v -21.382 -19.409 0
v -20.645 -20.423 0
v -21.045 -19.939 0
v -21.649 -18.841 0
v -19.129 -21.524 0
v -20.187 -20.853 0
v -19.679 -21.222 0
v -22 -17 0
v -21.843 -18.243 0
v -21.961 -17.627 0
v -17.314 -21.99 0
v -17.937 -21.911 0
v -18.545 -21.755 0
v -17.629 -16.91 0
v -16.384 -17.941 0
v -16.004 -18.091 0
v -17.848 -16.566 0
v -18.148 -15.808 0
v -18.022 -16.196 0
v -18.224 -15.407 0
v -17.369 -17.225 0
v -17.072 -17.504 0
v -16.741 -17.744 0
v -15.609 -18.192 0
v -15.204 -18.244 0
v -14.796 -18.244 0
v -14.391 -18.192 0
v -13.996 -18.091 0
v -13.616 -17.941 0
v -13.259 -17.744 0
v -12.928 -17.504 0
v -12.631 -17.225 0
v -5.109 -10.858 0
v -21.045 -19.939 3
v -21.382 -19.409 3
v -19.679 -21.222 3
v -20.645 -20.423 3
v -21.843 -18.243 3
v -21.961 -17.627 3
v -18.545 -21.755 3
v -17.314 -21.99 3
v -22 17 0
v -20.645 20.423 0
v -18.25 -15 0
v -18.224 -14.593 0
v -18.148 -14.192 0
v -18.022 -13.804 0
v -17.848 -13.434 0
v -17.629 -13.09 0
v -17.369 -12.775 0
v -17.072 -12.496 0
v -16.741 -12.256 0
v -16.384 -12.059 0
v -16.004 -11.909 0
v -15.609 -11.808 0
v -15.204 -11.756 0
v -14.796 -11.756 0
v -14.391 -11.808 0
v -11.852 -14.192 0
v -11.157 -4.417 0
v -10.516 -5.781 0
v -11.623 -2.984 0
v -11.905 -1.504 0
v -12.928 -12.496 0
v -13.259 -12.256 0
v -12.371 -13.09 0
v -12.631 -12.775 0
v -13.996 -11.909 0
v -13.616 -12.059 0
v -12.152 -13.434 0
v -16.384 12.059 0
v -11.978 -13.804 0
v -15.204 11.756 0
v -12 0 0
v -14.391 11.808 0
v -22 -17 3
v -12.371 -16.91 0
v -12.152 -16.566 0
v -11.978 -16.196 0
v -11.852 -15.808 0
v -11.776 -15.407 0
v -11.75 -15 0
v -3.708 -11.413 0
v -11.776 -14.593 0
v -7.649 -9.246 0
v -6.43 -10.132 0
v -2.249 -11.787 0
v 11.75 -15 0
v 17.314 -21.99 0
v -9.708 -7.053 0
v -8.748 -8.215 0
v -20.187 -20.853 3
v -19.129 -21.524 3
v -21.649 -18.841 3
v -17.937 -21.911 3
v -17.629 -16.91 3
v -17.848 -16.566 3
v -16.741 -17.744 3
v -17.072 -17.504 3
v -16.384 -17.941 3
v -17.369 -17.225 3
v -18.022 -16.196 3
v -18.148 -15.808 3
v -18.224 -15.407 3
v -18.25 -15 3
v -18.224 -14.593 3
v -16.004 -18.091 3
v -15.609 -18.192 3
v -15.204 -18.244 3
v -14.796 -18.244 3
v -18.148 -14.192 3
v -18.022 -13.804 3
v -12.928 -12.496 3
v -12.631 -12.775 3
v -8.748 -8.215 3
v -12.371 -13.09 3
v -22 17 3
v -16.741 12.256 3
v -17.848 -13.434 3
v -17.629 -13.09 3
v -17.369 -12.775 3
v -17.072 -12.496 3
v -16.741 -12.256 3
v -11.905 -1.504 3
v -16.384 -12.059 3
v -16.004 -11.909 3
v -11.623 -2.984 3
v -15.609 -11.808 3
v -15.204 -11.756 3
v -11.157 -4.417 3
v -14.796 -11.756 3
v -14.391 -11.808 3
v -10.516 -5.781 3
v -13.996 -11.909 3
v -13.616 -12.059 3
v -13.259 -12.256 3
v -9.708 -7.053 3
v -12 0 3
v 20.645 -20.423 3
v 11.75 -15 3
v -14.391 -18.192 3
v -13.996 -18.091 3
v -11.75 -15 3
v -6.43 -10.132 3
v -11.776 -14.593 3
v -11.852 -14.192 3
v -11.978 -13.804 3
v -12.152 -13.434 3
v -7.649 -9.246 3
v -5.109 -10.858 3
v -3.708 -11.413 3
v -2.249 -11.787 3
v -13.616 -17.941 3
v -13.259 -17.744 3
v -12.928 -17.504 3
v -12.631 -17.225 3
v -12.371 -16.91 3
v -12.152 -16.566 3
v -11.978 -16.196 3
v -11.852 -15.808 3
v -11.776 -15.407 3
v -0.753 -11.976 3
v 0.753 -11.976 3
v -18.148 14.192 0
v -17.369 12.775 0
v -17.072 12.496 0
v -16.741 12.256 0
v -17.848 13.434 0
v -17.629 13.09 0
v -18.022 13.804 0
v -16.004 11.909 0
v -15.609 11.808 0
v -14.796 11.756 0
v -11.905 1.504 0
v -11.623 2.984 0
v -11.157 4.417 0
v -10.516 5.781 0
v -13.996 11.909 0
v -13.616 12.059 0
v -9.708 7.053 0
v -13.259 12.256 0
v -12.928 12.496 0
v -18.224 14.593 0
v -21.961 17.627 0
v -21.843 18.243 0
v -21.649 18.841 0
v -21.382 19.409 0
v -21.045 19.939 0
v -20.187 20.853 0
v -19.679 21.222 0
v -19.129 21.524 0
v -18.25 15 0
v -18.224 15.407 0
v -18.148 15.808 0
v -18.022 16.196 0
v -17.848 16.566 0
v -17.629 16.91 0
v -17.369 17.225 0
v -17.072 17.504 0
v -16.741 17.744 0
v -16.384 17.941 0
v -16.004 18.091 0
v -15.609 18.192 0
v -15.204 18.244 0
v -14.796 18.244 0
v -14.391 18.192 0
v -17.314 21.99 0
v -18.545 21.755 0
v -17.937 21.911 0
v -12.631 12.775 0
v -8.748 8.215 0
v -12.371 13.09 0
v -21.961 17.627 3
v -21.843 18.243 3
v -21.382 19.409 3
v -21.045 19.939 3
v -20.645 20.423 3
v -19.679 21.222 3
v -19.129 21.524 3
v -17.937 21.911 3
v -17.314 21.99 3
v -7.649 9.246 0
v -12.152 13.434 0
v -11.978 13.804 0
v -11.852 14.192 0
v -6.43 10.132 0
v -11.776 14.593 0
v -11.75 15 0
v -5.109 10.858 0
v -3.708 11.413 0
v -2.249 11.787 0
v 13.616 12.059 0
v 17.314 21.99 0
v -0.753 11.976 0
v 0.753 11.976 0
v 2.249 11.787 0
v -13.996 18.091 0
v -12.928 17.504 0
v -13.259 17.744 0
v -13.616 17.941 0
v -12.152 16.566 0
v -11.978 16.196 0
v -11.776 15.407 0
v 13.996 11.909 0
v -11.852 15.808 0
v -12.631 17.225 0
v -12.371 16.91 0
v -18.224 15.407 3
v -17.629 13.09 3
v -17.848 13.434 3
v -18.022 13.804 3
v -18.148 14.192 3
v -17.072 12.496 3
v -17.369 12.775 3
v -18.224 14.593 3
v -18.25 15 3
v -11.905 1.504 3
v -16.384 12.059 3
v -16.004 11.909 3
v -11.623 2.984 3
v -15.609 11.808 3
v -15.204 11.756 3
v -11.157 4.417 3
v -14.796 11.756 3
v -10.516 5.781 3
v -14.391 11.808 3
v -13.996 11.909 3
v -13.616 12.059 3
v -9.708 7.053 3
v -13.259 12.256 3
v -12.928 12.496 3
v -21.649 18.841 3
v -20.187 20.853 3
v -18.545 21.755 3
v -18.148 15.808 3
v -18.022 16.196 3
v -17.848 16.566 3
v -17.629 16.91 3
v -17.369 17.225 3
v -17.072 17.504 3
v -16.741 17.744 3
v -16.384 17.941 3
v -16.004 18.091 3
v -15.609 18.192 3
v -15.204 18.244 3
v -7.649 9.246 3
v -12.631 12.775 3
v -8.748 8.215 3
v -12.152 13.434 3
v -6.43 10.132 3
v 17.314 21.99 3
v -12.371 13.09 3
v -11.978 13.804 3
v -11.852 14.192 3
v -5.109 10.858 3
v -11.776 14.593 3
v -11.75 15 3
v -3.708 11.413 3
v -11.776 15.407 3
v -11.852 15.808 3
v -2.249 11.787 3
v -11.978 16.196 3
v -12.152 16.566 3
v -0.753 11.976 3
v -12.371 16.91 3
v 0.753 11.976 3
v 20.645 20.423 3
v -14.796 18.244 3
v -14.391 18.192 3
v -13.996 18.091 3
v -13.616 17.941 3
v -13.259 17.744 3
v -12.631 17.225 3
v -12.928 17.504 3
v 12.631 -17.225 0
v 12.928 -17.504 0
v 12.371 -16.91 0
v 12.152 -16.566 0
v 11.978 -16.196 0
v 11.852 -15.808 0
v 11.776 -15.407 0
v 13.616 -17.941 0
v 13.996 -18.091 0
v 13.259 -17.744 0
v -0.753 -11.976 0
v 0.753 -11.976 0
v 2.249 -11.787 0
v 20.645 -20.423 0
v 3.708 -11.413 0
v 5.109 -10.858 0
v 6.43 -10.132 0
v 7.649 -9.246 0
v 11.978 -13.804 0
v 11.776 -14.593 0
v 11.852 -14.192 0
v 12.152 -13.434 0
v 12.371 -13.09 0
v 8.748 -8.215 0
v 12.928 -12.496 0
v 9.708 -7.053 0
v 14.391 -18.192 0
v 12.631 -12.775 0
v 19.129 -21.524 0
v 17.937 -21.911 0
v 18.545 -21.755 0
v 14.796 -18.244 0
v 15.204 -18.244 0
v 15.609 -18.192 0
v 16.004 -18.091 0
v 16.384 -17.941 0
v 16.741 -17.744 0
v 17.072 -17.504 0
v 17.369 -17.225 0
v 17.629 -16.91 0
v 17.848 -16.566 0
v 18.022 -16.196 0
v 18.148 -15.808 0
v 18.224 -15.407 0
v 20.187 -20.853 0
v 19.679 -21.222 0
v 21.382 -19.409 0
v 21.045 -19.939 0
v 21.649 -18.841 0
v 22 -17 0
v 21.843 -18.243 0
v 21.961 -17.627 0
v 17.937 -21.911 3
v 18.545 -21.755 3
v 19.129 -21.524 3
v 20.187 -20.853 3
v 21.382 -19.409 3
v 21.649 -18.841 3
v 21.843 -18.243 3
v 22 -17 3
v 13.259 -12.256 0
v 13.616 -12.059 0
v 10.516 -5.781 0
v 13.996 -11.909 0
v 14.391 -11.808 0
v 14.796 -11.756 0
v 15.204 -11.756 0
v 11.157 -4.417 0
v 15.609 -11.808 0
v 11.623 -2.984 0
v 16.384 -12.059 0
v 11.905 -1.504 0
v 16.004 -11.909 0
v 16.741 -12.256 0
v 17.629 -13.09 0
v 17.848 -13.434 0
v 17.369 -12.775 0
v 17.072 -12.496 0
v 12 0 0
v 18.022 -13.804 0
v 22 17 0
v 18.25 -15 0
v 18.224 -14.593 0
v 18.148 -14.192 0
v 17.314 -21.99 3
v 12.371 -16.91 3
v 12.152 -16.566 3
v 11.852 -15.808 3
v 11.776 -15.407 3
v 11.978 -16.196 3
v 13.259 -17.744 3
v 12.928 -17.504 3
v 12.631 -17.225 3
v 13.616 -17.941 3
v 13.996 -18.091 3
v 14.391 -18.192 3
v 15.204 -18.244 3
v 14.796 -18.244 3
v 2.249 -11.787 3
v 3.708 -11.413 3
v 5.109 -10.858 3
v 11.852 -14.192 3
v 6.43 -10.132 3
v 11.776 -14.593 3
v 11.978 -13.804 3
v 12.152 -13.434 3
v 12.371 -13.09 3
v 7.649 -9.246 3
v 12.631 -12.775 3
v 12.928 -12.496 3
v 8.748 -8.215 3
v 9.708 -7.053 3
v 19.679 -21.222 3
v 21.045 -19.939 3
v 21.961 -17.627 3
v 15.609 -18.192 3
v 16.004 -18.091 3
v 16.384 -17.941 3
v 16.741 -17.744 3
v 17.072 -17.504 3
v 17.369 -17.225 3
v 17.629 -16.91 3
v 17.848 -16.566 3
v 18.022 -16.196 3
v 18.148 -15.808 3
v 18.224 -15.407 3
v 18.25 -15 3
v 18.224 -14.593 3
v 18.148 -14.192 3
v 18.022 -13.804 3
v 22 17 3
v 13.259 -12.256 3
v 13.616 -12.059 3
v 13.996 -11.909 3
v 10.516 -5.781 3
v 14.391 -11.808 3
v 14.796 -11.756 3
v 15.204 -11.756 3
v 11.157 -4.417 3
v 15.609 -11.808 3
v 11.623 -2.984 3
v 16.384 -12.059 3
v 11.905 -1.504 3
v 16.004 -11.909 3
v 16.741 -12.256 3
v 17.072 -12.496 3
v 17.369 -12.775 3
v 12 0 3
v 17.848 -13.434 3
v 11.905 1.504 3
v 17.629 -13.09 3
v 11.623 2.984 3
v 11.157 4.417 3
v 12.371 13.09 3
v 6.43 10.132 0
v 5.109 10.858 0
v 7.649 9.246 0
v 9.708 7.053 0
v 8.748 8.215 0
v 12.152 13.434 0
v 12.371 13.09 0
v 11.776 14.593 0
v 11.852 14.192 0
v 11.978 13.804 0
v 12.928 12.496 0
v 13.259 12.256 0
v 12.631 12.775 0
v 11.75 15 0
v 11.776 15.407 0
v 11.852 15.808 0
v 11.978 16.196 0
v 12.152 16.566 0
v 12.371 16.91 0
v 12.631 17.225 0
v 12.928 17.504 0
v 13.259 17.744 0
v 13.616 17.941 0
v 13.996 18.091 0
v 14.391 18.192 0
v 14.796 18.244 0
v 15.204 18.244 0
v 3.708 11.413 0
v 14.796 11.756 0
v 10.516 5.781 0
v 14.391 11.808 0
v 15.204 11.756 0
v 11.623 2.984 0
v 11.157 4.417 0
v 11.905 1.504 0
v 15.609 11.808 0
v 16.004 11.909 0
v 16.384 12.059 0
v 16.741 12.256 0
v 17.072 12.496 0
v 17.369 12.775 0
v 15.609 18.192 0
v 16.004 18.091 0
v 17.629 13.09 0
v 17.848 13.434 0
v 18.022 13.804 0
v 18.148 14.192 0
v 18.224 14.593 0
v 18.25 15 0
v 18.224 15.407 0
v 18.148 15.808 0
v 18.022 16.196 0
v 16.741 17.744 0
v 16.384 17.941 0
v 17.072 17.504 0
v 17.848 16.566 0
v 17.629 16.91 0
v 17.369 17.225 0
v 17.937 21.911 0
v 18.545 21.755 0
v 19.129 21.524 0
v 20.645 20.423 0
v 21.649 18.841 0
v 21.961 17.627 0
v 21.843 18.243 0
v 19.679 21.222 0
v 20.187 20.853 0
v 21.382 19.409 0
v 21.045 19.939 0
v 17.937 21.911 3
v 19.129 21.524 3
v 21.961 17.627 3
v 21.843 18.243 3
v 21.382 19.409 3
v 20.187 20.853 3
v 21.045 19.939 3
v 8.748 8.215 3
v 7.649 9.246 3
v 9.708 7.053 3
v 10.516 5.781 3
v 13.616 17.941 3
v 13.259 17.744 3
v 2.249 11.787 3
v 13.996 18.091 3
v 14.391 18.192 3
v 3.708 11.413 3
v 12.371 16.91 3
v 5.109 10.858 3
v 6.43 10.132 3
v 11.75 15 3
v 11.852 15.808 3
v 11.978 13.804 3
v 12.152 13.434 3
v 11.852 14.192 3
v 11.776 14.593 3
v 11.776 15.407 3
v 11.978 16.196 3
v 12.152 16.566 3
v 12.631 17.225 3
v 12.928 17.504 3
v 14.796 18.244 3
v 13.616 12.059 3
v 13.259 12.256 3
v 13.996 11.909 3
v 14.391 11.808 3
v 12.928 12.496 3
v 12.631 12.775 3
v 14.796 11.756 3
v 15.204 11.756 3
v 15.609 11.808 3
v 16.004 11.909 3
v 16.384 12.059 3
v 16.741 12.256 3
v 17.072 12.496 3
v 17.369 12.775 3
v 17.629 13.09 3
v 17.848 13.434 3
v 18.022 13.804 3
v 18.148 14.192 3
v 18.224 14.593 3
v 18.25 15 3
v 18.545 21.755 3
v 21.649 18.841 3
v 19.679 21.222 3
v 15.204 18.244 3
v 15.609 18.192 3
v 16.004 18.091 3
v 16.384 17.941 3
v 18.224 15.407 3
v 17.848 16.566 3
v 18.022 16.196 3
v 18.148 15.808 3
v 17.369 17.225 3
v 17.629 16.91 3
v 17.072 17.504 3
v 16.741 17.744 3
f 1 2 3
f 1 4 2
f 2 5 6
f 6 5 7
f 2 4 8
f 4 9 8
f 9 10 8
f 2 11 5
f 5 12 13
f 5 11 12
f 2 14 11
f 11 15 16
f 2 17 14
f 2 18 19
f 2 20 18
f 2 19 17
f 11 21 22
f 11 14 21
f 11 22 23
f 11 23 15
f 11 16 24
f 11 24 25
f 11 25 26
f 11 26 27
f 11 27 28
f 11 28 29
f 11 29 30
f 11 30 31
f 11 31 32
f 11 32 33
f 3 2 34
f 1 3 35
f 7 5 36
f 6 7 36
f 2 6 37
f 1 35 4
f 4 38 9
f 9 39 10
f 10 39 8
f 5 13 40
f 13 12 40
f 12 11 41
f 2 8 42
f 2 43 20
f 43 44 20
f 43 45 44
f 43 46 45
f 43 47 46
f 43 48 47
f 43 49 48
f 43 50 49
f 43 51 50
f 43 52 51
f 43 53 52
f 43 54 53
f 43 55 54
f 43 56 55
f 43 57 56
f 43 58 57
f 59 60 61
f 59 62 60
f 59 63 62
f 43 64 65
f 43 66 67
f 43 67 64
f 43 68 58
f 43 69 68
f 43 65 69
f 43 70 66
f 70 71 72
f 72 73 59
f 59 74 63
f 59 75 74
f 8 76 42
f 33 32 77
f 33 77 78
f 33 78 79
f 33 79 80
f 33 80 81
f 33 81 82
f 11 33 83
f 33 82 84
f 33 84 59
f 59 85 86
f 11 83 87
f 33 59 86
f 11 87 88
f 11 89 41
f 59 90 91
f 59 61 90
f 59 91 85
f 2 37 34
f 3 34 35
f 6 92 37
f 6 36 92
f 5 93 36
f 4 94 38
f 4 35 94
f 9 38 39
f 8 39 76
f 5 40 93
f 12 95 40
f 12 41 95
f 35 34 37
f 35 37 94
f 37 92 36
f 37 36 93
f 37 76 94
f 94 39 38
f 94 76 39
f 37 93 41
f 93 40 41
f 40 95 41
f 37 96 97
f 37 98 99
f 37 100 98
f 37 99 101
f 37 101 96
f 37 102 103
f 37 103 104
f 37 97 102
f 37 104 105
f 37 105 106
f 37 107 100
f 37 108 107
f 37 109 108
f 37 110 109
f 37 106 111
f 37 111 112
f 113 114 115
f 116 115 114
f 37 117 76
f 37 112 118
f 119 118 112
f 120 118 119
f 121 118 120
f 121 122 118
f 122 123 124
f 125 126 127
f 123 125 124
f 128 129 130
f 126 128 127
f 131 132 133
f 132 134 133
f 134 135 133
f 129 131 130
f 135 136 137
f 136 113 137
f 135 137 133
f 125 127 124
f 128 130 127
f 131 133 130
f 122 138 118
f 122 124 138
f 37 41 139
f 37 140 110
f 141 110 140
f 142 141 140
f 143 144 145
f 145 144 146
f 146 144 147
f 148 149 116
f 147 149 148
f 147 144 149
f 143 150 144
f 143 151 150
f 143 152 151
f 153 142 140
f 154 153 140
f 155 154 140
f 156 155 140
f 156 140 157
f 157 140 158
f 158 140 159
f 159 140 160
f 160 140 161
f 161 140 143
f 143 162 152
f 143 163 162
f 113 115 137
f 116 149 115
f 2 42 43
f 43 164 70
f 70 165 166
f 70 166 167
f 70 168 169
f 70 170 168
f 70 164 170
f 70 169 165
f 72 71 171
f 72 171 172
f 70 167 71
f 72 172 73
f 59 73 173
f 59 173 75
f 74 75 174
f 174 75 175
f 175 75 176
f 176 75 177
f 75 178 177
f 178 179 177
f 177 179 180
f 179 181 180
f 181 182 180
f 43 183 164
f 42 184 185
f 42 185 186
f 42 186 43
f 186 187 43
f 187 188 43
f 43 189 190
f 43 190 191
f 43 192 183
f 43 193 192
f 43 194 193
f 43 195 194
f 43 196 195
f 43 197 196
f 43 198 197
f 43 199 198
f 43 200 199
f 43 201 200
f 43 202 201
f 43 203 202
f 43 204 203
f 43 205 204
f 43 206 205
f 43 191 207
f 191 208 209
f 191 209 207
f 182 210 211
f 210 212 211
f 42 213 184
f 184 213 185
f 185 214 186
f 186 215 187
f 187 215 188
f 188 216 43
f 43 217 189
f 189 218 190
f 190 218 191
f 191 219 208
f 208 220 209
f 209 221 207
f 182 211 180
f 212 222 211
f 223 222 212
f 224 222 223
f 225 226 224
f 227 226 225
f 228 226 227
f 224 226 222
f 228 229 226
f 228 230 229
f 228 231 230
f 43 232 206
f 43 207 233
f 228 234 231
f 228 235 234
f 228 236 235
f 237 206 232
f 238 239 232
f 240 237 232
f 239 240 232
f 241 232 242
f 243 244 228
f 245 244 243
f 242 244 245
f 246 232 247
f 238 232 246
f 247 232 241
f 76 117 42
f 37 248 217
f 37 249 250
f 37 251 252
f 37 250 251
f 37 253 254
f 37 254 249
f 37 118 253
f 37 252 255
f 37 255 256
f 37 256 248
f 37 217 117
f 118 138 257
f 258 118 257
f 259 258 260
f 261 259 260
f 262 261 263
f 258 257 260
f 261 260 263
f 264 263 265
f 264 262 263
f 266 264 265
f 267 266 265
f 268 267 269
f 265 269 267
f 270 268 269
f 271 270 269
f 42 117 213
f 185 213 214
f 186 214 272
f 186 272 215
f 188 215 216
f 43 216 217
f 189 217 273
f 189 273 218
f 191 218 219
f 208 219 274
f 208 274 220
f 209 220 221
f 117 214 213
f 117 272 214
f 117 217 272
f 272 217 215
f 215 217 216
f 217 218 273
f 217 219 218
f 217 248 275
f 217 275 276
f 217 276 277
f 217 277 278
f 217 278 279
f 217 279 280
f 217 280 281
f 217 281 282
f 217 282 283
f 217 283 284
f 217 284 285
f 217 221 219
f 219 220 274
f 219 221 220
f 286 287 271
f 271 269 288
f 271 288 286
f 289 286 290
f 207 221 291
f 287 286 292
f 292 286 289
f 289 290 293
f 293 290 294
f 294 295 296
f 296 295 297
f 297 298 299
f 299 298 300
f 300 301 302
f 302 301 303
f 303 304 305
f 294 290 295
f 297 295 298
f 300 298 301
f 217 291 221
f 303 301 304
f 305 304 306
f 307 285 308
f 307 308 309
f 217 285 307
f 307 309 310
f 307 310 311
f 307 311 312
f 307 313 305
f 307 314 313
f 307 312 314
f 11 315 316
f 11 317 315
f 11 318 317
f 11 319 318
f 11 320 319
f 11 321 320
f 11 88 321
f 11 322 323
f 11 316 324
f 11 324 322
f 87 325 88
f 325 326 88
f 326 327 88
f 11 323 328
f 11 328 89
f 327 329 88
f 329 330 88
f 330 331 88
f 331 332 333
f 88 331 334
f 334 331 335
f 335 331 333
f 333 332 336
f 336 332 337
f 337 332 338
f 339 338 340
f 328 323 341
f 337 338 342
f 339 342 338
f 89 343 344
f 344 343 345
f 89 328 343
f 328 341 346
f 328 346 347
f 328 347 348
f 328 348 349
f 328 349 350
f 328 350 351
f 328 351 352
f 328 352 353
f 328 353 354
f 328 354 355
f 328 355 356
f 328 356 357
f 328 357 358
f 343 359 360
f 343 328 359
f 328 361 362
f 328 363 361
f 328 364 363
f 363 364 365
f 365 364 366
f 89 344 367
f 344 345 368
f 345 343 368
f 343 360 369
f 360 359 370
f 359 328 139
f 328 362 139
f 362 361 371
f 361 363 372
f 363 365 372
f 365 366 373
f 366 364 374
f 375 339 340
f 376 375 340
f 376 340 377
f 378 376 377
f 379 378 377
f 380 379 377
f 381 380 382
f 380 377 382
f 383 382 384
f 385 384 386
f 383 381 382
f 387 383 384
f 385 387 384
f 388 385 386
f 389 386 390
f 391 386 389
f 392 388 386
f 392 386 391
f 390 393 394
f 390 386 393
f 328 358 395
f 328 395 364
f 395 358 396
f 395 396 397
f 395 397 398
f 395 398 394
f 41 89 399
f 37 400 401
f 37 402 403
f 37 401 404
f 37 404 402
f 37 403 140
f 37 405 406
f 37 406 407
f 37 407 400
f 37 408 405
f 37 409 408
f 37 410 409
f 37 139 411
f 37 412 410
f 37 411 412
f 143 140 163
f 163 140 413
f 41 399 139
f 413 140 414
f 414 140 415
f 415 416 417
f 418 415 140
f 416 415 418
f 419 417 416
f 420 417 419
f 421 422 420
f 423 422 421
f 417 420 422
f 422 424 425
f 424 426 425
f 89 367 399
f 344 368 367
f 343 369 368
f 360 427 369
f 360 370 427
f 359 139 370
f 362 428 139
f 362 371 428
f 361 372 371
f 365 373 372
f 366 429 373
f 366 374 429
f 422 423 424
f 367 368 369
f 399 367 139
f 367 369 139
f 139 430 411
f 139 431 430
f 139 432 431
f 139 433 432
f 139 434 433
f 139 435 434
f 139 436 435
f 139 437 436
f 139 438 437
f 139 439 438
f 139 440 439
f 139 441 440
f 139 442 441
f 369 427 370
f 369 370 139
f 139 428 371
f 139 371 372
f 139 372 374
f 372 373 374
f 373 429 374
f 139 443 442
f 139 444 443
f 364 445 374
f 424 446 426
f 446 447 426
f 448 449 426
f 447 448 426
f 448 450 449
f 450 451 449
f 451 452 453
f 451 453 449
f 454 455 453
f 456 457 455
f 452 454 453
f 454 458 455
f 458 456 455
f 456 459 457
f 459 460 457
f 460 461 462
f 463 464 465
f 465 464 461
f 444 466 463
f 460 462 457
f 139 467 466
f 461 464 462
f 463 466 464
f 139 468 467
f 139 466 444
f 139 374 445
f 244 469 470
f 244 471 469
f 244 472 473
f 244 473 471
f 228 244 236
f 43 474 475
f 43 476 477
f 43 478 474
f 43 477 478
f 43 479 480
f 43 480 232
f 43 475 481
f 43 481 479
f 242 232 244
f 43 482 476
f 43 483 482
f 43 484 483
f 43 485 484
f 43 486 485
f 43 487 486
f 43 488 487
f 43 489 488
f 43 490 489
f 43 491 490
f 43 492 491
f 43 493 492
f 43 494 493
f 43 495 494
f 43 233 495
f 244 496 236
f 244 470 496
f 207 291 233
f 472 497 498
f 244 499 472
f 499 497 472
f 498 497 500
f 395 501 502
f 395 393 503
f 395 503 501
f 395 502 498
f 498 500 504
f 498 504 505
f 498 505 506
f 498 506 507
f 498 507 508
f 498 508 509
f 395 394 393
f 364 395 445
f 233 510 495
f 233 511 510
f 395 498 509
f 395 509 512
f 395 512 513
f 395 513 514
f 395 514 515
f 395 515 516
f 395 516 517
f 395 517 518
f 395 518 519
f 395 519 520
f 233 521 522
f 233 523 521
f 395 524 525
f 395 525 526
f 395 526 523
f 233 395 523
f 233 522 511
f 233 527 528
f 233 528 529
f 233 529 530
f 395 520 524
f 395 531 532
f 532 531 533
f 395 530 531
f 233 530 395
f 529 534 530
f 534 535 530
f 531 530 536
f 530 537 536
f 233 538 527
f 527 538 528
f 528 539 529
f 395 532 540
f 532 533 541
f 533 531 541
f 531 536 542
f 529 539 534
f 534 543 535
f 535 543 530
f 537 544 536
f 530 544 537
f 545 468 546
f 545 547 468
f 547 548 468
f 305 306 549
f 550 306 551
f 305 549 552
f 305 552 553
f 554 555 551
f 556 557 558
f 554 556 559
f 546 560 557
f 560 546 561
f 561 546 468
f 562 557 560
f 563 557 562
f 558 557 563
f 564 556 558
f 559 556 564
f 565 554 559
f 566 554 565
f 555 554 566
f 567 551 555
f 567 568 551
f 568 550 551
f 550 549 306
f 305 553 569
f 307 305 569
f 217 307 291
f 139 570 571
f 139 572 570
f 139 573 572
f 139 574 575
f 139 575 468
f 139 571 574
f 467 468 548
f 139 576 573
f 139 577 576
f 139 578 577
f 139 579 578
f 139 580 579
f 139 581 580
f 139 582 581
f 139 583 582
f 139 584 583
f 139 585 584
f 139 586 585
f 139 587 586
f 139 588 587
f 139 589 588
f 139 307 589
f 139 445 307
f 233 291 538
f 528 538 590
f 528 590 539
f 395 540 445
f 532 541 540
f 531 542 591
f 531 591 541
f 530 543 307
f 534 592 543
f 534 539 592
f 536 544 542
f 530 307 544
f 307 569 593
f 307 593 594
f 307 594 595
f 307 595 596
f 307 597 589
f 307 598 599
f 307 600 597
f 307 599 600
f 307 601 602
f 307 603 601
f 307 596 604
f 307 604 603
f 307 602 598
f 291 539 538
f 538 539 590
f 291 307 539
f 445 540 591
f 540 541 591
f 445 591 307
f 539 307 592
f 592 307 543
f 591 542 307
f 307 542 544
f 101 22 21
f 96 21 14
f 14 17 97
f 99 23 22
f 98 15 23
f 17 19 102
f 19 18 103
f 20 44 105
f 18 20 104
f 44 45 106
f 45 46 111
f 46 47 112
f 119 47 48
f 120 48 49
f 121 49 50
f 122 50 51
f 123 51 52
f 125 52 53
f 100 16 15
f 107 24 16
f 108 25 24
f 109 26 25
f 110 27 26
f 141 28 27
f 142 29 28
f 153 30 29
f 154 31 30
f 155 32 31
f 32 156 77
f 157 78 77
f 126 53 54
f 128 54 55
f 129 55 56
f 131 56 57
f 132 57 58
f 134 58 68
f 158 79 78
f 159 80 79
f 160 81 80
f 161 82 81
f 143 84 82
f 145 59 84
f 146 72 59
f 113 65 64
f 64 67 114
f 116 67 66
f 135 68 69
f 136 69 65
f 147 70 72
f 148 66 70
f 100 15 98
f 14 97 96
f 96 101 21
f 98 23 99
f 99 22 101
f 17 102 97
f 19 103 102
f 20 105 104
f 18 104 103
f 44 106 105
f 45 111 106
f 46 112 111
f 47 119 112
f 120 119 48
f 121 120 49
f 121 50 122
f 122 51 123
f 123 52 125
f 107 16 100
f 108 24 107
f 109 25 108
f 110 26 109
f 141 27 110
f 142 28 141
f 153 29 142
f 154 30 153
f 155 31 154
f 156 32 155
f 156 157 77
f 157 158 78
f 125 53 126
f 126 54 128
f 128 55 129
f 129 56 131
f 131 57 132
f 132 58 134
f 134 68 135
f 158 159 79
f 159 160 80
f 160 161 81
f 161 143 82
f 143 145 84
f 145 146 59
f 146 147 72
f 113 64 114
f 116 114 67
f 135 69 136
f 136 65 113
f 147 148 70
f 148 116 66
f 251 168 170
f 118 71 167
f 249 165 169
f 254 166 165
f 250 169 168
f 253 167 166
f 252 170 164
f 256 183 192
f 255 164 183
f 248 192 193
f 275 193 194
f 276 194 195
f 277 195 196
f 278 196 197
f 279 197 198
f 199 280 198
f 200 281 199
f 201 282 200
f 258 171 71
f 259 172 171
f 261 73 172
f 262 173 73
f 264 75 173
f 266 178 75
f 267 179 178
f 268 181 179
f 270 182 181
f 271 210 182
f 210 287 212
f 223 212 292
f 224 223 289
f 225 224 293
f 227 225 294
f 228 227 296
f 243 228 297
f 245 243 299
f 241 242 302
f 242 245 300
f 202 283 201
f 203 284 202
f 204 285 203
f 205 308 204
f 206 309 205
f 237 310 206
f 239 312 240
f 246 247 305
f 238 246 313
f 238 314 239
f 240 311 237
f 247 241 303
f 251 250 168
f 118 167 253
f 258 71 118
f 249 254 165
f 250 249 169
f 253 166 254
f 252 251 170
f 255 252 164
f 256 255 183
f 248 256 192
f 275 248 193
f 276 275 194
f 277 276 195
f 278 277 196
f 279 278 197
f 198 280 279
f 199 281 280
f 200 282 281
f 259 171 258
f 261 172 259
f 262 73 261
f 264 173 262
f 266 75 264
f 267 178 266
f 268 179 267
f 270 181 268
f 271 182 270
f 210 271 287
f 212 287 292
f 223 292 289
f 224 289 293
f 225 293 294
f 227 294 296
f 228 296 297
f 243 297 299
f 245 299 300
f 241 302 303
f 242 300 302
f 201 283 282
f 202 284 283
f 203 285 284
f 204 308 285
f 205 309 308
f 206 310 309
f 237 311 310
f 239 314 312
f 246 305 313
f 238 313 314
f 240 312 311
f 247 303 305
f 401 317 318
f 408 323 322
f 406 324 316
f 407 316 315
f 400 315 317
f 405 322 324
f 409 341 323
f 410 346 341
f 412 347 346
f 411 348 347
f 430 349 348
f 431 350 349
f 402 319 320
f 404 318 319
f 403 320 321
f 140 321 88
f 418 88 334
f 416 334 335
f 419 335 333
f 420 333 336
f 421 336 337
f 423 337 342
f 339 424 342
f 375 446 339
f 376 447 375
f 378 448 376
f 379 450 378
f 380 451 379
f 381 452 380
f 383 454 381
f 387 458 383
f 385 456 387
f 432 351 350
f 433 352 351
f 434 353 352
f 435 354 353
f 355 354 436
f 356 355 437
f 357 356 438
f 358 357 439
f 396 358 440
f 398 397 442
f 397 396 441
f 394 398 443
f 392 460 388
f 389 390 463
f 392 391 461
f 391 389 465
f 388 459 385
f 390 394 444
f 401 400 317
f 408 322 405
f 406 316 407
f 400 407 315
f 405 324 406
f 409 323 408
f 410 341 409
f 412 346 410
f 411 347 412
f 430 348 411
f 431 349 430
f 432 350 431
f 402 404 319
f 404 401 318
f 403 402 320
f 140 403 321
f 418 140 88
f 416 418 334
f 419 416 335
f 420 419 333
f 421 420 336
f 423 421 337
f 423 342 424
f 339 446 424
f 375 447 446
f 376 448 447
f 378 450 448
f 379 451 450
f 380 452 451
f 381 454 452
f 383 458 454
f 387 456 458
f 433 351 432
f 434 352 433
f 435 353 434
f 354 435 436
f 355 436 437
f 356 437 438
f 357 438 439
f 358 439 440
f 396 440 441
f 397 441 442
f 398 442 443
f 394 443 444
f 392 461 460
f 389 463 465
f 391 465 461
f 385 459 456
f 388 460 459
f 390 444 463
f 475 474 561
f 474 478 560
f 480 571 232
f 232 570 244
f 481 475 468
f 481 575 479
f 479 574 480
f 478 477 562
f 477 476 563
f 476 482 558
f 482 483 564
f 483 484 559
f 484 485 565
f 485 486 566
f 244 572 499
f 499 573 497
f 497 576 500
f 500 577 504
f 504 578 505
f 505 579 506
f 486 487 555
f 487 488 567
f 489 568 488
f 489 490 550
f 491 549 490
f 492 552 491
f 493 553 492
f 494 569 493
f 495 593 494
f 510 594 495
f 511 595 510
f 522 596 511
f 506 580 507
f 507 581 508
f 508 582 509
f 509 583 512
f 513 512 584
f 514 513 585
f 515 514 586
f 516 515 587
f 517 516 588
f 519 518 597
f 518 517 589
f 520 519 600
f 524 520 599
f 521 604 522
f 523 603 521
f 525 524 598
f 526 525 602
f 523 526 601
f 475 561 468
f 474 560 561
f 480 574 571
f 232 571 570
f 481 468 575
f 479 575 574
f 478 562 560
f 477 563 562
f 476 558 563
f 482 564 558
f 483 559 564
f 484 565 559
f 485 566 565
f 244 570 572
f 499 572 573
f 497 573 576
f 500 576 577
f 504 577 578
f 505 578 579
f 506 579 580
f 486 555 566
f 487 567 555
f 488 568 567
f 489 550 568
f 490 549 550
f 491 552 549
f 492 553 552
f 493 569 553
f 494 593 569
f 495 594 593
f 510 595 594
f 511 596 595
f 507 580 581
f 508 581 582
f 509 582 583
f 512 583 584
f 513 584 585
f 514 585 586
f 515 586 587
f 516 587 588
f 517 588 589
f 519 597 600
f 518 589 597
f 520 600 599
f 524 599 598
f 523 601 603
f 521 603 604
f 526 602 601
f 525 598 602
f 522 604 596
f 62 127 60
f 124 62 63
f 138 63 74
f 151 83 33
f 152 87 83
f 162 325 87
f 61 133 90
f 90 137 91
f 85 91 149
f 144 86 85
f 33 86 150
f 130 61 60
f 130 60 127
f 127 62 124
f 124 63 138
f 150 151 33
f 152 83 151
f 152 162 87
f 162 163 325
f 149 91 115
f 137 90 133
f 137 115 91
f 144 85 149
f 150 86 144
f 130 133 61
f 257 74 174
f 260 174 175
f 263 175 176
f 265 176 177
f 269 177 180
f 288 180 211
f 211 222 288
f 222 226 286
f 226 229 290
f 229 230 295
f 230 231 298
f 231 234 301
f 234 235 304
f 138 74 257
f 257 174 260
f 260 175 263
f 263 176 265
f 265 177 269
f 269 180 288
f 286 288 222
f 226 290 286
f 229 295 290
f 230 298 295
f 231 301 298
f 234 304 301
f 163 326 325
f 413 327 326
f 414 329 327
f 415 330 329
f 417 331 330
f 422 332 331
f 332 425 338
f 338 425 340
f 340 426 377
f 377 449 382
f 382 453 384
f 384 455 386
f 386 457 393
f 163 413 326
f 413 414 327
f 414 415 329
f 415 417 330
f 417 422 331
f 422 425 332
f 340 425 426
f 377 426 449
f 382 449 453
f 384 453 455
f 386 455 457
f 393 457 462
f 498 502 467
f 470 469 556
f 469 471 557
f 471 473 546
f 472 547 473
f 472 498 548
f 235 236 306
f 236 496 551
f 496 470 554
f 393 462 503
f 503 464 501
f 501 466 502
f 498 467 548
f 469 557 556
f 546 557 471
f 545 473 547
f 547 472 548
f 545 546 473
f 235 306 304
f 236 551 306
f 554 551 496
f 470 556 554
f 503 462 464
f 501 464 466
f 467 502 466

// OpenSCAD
$fn = 50;

difference() {
	union() {
		hull() {
			translate(v = [-17.0, 17.0, 0]) {
				cylinder(h = 3, r = 5);
			}
			translate(v = [17.0, 17.0, 0]) {
				cylinder(h = 3, r = 5);
			}
			translate(v = [-17.0, -17.0, 0]) {
				cylinder(h = 3, r = 5);
			}
			translate(v = [17.0, -17.0, 0]) {
				cylinder(h = 3, r = 5);
			}
		}
	}
	union() {
		translate(v = [-15.0, -15.0, -100.0]) {
			cylinder(h = 200, r = 3.25);
		}
		translate(v = [-15.0, 15.0, -100.0]) {
			cylinder(h = 200, r = 3.25);
		}
		translate(v = [15.0, -15.0, -100.0]) {
			cylinder(h = 200, r = 3.25);
		}
		translate(v = [15.0, 15.0, -100.0]) {
			cylinder(h = 200, r = 3.25);
		}
		translate(v = [-15.0, -15.0, -100.0]) {
			cylinder(h = 200, r = 1.8);
		}
		translate(v = [-15.0, 15.0, -100.0]) {
			cylinder(h = 200, r = 1.8);
		}
		translate(v = [15.0, -15.0, -100.0]) {
			cylinder(h = 200, r = 1.8);
		}
		translate(v = [15.0, 15.0, -100.0]) {
			cylinder(h = 200, r = 1.8);
		}
		cylinder(h = 3, r = 12.0);
	}
}
